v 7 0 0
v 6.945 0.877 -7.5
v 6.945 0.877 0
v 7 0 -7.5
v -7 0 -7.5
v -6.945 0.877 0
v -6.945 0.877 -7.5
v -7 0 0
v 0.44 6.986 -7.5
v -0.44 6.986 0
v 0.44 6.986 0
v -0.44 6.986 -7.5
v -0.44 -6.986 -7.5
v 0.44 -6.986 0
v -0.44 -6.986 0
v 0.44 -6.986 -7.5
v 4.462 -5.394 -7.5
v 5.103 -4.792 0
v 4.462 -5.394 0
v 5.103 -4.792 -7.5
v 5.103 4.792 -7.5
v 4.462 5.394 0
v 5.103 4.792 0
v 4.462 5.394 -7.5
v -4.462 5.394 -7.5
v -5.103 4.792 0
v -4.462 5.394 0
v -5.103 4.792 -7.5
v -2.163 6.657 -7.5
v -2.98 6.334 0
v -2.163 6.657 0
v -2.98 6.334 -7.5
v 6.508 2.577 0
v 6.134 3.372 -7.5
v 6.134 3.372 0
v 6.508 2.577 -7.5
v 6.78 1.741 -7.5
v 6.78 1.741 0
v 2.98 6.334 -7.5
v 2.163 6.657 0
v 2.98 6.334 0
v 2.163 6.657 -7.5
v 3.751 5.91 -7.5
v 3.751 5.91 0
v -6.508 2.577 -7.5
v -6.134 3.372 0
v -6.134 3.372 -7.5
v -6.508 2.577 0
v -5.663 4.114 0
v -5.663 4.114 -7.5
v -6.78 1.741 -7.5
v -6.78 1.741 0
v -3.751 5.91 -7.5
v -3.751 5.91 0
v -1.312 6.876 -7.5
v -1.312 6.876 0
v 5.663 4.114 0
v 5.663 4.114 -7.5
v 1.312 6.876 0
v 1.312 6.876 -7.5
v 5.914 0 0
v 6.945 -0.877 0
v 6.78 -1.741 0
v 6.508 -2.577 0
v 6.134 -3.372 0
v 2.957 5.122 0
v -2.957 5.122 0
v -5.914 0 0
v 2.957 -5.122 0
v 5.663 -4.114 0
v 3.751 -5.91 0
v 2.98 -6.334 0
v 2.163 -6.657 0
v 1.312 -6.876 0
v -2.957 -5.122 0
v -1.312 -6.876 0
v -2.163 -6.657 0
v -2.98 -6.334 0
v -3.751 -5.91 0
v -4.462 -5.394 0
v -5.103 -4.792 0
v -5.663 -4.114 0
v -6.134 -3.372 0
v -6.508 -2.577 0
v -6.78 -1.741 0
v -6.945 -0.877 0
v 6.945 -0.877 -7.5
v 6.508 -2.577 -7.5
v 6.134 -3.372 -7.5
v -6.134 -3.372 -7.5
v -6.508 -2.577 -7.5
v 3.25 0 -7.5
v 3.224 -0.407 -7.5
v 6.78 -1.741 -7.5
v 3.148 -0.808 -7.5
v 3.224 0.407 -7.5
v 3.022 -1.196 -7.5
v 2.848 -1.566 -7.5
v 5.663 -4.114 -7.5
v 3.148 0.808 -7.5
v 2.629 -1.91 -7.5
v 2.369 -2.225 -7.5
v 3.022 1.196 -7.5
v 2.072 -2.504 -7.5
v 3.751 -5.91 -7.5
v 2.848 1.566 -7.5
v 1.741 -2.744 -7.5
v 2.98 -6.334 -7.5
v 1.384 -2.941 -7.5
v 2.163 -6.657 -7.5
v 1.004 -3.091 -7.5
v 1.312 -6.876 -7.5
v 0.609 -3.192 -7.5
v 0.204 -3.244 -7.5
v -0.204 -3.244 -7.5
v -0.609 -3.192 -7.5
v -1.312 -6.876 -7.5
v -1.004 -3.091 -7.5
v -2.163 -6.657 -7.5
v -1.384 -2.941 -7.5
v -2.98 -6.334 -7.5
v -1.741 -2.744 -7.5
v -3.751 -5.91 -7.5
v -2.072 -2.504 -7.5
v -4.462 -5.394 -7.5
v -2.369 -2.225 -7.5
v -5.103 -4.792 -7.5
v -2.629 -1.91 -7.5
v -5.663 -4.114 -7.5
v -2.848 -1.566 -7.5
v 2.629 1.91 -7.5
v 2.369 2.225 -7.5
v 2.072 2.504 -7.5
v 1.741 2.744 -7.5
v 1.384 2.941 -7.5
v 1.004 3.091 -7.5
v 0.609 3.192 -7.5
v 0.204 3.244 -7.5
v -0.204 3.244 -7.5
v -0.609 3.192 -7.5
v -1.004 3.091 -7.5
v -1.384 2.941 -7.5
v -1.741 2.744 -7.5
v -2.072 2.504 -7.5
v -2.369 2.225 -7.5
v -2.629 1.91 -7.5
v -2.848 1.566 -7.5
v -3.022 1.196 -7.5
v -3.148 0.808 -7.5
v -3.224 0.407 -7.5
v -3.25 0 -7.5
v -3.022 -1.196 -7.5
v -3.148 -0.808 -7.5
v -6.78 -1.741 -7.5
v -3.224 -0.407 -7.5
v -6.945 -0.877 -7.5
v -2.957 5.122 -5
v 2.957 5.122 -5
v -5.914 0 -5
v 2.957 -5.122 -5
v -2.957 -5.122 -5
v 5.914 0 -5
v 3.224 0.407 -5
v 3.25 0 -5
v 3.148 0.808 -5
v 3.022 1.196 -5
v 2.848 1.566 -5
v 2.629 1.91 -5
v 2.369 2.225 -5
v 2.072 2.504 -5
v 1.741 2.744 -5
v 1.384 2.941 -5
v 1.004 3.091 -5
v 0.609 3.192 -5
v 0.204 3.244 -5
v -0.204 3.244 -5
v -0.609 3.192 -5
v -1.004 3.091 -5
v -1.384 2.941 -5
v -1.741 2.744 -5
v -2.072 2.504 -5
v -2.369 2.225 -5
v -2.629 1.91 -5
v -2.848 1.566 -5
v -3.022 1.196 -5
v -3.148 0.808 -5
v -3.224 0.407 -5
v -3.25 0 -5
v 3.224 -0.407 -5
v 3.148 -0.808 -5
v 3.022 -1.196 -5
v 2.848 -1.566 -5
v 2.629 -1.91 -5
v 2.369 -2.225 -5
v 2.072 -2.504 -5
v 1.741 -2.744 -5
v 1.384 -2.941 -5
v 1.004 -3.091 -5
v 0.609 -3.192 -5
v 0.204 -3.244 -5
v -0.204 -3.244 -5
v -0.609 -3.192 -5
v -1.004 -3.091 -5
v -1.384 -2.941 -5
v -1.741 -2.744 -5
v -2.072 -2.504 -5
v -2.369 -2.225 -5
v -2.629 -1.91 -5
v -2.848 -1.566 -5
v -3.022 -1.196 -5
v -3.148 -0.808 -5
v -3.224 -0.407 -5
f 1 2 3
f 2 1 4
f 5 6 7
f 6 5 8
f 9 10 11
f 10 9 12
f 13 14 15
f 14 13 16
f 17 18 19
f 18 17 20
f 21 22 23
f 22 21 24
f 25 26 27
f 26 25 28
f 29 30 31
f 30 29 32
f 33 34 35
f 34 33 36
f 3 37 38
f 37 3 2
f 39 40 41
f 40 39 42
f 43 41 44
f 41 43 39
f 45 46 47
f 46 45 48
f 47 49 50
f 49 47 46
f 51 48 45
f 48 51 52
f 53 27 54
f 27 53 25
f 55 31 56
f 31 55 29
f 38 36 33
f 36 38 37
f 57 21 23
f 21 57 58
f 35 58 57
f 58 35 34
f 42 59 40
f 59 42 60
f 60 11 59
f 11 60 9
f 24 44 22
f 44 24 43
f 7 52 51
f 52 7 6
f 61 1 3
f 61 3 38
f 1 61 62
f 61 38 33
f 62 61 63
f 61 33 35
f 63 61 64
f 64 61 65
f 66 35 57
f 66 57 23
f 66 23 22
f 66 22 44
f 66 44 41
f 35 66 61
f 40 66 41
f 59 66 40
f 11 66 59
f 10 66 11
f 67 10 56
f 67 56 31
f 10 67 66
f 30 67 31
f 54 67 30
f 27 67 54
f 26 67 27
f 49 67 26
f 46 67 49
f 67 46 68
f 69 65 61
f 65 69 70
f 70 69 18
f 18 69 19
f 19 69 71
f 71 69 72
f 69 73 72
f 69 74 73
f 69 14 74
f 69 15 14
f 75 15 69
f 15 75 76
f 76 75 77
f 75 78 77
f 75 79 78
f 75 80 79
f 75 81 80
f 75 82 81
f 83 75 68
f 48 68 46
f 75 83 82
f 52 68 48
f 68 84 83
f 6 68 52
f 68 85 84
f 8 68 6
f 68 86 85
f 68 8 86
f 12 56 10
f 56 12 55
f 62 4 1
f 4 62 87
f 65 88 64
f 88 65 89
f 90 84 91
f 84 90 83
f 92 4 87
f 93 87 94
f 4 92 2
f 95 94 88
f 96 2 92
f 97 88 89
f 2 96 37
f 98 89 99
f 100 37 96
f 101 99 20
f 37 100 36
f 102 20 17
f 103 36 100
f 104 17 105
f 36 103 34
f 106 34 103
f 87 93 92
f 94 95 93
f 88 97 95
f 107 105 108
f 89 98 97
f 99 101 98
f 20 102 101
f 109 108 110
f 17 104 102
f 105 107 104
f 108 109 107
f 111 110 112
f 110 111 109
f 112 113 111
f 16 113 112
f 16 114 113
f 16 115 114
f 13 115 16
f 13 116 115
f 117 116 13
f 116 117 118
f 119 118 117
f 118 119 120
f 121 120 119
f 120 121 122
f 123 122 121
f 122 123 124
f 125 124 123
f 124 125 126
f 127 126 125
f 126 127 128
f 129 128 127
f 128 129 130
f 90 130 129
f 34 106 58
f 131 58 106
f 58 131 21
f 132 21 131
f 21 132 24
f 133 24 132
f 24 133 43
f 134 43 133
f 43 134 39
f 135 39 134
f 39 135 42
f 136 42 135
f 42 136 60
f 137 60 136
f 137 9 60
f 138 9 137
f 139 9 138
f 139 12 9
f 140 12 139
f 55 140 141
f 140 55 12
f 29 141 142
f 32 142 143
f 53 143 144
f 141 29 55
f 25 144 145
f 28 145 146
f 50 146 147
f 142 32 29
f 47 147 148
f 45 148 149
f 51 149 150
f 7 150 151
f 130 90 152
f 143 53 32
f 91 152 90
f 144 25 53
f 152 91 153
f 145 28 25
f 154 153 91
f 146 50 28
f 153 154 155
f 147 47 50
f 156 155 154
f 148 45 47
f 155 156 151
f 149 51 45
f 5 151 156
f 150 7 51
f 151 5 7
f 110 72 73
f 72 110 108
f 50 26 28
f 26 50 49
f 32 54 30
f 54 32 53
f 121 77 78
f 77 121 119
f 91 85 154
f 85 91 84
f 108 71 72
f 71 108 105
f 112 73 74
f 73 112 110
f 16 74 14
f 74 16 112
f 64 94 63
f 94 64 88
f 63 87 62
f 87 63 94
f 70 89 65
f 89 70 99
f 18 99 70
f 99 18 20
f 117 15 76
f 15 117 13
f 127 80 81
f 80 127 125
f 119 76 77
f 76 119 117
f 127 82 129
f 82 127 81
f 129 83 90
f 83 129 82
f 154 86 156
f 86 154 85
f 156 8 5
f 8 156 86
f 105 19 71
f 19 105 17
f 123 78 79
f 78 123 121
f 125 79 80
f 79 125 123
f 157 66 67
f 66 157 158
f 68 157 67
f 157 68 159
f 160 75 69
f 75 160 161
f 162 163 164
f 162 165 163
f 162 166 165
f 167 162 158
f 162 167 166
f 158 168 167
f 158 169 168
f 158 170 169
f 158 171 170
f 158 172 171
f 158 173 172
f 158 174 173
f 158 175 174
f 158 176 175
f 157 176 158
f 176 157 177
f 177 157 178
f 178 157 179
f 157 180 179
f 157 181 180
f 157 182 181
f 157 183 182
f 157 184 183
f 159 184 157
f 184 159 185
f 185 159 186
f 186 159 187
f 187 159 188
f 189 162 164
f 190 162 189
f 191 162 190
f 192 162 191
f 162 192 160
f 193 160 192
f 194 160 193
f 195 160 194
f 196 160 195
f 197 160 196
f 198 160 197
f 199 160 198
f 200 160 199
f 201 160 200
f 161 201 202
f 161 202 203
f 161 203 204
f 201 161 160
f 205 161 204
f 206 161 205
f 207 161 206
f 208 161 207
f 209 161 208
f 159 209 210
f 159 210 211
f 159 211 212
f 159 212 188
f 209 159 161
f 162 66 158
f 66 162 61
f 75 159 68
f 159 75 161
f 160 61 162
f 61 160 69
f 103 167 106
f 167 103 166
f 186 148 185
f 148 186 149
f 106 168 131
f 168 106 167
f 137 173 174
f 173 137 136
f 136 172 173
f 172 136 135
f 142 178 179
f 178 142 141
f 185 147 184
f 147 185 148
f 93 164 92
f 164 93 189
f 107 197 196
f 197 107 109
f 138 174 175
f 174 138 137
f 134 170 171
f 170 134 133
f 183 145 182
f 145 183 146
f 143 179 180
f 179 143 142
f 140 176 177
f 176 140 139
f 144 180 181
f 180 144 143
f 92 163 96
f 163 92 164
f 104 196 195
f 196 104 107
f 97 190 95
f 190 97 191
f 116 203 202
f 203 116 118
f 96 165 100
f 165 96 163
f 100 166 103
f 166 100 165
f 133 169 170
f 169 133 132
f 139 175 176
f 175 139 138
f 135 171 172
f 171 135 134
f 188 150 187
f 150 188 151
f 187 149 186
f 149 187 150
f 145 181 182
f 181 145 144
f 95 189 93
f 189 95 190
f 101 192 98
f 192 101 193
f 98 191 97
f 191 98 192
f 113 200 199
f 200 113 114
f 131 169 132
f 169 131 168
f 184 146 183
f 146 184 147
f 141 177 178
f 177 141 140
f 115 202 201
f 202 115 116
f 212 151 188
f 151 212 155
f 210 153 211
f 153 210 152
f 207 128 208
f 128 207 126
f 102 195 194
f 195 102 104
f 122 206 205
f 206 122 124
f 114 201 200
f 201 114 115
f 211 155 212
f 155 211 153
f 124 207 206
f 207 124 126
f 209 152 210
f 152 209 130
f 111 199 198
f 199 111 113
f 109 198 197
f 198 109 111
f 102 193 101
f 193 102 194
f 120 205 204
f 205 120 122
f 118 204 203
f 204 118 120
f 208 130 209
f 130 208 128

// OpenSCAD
$fn = 50;


difference() {
	union() {
		translate(v = [0, 0, -7.5000000000]) {
			cylinder(h = 7.5000000000, r = 7.0000000000);
		}
		translate(v = [0, 0, -6.0000000000]) {
			cylinder(h = 6, r = 2.8750000000);
		}
	}
	union() {
		translate(v = [0, 0, 0]) {
			rotate(a = [0, 0, 0]) {
				difference() {
					union() {
						translate(v = [0, 0, -5]) {
							linear_extrude(height = 5) {
								polygon(points = [[5.9142500000, 0.0000000000], [2.9571250000, 5.1218907443], [-2.9571250000, 5.1218907443], [-5.9142500000, 0.0000000000], [-2.9571250000, -5.1218907443], [2.9571250000, -5.1218907443]]);
							}
						}
					}
					union();
				}
			}
		}
		#translate(v = [0, 0, -100.0000000000]) {
			cylinder(h = 200, r = 3.2500000000);
		}
	}
}
